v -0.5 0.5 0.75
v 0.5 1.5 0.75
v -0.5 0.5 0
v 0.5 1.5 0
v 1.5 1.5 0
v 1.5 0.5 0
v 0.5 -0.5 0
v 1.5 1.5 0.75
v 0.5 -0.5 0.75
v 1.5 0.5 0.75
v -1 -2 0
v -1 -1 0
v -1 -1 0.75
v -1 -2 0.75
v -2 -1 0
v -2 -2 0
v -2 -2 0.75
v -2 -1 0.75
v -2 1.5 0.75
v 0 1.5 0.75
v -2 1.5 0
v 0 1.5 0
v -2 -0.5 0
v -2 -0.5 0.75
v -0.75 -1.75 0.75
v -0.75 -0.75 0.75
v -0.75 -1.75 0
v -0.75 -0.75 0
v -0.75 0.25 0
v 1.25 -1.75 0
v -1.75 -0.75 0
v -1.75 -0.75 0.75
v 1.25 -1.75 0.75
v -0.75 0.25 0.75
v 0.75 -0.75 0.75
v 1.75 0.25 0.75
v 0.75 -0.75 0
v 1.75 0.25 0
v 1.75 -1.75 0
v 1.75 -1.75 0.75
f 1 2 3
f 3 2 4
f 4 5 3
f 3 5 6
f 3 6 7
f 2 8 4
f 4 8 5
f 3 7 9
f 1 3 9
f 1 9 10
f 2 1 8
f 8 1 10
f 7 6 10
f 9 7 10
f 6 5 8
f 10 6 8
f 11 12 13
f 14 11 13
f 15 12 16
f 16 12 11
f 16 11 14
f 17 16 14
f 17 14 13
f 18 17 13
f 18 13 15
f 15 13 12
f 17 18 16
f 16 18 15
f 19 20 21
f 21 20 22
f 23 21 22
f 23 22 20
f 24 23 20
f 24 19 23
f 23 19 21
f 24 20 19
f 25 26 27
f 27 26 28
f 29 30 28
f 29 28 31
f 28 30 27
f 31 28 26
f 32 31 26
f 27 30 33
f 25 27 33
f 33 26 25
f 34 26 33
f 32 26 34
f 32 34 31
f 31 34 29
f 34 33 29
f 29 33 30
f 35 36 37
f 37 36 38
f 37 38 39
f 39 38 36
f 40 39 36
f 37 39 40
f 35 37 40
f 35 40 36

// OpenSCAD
space = 0.25;
gheight = 0.75;
root2 = sqrt(2.0);

module FivePieceTangram()
{
	linear_extrude(height = gheight, center = false, convexity = 10, twist = 0)
	{
		translate([-2,-2,0])
		{
			// Square
			assign(dx = 0 * space, dy = 0 * space)
				polygon([	[0+dx, 0+dy],
						[0+dx, 1+dy],
						[1+dx, 1+dy],
						[1+dx, 0+dy] ]);

			// Odd Shaped Piece
			assign(dx = 1 * space, dy = 1 * space)
				polygon([	[1+dx, 0+dy],
						[3+dx, 0+dy],
						[1+dx, 2+dy],
						[0+dx, 1+dy],
						[1+dx, 1+dy] ]);

			// Small Triangle
			assign(dx = 3 * space, dy = 1 * space)
				polygon([	[3+dx, 0+dy],
						[3+dx, 2+dy],
						[2+dx, 1+dy] ]);

			// "House"
			assign(dx = 2 * space, dy = 2 * space)
				polygon([	[2+dx, 1+dy],
						[3+dx, 2+dy],
						[3+dx, 3+dy],
						[2+dx, 3+dy],
						[1+dx, 2+dy] ]);

			// Large Triangle
			assign(dx = 0 * space, dy = 2 * space)
				polygon([	[0+dx, 1+dy],
						[0+dx, 3+dy],
						[2+dx, 3+dy] ]);
		}
	}
}


FivePieceTangram();
